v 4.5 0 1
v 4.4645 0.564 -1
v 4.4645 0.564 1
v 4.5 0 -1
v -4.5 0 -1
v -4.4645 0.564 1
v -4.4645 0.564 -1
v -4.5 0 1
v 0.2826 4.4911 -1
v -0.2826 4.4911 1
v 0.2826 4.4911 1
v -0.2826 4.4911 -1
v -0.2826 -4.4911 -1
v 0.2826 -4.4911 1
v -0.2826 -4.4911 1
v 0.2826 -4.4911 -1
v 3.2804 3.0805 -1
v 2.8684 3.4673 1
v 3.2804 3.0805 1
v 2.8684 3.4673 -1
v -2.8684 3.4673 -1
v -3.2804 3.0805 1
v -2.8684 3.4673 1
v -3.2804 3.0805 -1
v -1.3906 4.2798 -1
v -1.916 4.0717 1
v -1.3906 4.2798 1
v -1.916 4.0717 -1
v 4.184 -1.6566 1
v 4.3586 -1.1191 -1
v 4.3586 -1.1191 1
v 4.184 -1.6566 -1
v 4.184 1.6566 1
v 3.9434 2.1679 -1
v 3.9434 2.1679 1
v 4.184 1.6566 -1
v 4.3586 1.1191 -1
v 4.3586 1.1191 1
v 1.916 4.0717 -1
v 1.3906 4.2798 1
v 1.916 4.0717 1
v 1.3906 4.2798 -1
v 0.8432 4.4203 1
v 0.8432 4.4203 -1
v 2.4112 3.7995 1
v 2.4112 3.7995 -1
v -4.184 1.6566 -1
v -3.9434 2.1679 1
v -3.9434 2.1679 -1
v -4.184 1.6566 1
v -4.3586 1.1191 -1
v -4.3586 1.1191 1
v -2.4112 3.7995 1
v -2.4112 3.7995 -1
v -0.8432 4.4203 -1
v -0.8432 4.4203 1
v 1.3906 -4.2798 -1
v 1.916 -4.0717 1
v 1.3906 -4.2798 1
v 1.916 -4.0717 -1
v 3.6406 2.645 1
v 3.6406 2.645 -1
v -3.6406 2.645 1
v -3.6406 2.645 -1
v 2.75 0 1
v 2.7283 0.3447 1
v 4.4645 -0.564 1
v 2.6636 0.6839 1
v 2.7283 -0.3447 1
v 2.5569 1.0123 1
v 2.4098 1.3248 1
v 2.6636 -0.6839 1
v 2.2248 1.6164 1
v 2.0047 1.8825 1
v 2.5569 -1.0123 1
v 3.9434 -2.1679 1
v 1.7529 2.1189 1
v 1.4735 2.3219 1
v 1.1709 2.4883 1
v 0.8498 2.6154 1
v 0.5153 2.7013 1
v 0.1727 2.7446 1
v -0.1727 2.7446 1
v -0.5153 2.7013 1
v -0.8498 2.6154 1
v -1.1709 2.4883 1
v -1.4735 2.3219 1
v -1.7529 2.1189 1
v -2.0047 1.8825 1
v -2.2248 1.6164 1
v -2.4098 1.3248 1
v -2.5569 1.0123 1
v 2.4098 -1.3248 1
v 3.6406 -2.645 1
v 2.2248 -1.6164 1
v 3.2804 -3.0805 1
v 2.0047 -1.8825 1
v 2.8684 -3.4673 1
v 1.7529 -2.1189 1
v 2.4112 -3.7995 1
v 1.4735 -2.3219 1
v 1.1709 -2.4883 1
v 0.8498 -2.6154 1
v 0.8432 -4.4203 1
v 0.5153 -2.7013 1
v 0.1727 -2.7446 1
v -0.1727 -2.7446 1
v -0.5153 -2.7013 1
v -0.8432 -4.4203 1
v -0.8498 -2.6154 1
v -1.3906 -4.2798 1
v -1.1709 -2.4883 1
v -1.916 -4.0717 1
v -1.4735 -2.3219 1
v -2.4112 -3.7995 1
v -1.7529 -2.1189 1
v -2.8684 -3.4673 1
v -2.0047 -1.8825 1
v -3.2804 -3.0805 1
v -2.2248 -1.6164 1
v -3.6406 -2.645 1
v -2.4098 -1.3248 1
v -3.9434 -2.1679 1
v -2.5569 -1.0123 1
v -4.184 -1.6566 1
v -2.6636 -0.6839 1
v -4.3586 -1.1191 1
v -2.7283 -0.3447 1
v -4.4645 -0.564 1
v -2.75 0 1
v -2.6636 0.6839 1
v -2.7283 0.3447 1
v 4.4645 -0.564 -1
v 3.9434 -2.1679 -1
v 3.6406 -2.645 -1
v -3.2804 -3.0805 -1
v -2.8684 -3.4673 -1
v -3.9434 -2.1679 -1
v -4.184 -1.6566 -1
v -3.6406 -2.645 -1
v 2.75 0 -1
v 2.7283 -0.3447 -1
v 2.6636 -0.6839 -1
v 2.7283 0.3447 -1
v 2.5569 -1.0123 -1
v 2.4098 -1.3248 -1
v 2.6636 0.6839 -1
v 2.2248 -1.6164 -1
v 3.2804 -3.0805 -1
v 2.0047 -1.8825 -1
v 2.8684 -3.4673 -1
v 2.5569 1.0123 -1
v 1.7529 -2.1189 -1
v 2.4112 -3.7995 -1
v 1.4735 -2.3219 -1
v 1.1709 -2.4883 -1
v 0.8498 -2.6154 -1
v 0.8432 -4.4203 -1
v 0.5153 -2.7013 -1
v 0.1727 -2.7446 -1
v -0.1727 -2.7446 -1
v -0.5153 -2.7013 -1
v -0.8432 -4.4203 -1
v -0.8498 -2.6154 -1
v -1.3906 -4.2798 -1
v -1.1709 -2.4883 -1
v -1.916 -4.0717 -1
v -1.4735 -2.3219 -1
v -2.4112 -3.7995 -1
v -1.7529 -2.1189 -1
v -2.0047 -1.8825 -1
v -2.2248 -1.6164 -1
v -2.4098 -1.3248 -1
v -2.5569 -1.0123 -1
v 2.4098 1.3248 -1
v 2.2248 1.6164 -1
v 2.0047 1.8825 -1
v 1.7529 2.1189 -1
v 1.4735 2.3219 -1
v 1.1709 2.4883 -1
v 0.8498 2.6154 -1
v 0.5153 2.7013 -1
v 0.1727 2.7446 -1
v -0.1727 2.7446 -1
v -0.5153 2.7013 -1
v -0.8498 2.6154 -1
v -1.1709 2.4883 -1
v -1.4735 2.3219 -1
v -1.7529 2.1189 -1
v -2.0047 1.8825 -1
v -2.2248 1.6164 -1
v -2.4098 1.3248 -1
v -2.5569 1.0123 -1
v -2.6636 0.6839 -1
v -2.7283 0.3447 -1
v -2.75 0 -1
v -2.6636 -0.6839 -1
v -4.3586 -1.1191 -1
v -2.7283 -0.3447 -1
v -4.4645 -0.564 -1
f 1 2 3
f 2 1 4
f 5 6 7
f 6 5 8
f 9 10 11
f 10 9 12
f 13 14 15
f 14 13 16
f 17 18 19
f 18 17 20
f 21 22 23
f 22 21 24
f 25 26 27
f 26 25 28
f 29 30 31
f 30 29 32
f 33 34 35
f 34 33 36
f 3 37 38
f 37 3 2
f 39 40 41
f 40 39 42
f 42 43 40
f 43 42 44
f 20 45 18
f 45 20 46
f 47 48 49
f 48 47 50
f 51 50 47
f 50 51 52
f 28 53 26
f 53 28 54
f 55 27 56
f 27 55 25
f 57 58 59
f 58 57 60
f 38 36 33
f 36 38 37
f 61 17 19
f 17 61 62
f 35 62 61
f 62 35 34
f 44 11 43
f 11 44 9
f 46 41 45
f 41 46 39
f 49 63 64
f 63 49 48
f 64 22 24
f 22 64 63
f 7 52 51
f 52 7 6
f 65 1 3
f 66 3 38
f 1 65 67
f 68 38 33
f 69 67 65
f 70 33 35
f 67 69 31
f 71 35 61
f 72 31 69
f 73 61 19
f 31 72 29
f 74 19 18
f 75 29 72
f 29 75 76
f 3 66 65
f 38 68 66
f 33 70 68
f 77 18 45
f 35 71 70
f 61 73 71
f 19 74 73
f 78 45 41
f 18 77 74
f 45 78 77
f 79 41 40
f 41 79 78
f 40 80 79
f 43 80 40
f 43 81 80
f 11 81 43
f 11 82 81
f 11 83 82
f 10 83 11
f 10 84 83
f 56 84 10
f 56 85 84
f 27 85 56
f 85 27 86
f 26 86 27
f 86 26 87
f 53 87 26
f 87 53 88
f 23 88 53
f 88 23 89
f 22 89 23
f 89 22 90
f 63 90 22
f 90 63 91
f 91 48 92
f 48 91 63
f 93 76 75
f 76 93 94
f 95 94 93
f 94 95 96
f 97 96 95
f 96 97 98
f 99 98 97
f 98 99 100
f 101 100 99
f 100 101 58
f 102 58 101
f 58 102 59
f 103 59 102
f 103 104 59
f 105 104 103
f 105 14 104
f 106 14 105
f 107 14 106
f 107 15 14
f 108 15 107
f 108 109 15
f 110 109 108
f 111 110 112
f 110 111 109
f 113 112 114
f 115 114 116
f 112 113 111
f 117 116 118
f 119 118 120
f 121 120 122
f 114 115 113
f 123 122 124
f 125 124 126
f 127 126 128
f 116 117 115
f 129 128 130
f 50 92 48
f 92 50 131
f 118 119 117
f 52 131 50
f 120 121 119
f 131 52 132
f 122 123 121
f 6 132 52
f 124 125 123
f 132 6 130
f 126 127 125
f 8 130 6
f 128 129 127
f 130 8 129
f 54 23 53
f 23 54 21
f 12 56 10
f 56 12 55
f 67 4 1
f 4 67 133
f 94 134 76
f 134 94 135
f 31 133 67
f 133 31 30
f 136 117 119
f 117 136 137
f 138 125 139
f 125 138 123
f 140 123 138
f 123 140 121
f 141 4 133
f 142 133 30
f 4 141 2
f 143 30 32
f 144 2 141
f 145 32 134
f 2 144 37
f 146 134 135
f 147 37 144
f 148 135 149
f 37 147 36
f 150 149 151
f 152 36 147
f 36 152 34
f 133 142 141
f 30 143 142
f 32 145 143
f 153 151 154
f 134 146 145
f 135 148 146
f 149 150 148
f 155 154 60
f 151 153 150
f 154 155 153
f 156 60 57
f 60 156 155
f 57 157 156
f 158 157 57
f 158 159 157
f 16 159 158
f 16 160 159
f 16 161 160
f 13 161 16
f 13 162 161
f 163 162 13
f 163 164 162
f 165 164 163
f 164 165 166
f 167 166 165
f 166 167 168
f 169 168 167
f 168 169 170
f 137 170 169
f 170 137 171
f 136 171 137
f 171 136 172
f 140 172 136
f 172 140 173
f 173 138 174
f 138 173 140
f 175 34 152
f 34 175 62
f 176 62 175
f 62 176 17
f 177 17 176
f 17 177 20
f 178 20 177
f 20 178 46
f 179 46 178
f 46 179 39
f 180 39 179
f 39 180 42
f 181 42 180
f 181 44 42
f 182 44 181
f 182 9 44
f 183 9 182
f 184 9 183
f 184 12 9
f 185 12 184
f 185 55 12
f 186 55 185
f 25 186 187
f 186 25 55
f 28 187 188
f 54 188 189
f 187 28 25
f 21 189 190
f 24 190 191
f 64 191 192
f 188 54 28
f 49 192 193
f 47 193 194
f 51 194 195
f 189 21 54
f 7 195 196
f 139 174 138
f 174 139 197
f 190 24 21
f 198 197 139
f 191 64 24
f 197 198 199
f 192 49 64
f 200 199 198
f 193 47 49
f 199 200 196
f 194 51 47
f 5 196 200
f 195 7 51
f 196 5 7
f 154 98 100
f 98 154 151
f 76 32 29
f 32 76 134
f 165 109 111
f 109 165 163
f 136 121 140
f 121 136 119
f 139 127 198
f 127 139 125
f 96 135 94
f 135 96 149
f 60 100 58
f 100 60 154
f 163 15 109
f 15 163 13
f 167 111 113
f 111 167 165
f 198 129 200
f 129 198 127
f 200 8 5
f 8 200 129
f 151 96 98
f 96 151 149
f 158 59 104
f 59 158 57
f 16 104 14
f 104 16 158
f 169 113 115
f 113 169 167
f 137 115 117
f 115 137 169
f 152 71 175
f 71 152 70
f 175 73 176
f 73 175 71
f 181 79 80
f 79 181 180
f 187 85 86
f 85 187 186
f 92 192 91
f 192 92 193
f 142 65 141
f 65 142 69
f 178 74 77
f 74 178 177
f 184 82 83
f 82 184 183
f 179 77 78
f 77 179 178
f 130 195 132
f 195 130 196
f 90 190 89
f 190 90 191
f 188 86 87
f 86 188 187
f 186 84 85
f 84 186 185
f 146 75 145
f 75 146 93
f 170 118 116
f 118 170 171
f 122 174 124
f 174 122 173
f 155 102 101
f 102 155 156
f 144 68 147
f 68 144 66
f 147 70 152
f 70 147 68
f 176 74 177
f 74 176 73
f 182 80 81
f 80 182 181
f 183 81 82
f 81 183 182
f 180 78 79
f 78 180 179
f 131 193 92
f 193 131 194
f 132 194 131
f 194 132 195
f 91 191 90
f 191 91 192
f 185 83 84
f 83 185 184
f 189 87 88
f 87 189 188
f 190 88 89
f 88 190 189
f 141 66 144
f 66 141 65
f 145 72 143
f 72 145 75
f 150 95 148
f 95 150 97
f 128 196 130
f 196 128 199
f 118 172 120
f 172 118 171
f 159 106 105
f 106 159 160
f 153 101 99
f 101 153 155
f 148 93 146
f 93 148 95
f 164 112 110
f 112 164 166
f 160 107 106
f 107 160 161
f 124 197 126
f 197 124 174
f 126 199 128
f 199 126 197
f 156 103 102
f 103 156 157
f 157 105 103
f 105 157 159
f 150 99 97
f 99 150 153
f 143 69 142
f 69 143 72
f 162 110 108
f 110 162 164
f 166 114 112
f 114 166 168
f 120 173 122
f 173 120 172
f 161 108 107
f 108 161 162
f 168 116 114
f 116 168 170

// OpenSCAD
$fn = 50;


difference() {
	union() {
		translate(v = [0, 0, -1.0000000000]) {
			cylinder(h = 2, r = 4.5000000000);
		}
	}
	union() {
		translate(v = [0, 0, -100.0000000000]) {
			cylinder(h = 200, r = 2.7500000000);
		}
	}
}
